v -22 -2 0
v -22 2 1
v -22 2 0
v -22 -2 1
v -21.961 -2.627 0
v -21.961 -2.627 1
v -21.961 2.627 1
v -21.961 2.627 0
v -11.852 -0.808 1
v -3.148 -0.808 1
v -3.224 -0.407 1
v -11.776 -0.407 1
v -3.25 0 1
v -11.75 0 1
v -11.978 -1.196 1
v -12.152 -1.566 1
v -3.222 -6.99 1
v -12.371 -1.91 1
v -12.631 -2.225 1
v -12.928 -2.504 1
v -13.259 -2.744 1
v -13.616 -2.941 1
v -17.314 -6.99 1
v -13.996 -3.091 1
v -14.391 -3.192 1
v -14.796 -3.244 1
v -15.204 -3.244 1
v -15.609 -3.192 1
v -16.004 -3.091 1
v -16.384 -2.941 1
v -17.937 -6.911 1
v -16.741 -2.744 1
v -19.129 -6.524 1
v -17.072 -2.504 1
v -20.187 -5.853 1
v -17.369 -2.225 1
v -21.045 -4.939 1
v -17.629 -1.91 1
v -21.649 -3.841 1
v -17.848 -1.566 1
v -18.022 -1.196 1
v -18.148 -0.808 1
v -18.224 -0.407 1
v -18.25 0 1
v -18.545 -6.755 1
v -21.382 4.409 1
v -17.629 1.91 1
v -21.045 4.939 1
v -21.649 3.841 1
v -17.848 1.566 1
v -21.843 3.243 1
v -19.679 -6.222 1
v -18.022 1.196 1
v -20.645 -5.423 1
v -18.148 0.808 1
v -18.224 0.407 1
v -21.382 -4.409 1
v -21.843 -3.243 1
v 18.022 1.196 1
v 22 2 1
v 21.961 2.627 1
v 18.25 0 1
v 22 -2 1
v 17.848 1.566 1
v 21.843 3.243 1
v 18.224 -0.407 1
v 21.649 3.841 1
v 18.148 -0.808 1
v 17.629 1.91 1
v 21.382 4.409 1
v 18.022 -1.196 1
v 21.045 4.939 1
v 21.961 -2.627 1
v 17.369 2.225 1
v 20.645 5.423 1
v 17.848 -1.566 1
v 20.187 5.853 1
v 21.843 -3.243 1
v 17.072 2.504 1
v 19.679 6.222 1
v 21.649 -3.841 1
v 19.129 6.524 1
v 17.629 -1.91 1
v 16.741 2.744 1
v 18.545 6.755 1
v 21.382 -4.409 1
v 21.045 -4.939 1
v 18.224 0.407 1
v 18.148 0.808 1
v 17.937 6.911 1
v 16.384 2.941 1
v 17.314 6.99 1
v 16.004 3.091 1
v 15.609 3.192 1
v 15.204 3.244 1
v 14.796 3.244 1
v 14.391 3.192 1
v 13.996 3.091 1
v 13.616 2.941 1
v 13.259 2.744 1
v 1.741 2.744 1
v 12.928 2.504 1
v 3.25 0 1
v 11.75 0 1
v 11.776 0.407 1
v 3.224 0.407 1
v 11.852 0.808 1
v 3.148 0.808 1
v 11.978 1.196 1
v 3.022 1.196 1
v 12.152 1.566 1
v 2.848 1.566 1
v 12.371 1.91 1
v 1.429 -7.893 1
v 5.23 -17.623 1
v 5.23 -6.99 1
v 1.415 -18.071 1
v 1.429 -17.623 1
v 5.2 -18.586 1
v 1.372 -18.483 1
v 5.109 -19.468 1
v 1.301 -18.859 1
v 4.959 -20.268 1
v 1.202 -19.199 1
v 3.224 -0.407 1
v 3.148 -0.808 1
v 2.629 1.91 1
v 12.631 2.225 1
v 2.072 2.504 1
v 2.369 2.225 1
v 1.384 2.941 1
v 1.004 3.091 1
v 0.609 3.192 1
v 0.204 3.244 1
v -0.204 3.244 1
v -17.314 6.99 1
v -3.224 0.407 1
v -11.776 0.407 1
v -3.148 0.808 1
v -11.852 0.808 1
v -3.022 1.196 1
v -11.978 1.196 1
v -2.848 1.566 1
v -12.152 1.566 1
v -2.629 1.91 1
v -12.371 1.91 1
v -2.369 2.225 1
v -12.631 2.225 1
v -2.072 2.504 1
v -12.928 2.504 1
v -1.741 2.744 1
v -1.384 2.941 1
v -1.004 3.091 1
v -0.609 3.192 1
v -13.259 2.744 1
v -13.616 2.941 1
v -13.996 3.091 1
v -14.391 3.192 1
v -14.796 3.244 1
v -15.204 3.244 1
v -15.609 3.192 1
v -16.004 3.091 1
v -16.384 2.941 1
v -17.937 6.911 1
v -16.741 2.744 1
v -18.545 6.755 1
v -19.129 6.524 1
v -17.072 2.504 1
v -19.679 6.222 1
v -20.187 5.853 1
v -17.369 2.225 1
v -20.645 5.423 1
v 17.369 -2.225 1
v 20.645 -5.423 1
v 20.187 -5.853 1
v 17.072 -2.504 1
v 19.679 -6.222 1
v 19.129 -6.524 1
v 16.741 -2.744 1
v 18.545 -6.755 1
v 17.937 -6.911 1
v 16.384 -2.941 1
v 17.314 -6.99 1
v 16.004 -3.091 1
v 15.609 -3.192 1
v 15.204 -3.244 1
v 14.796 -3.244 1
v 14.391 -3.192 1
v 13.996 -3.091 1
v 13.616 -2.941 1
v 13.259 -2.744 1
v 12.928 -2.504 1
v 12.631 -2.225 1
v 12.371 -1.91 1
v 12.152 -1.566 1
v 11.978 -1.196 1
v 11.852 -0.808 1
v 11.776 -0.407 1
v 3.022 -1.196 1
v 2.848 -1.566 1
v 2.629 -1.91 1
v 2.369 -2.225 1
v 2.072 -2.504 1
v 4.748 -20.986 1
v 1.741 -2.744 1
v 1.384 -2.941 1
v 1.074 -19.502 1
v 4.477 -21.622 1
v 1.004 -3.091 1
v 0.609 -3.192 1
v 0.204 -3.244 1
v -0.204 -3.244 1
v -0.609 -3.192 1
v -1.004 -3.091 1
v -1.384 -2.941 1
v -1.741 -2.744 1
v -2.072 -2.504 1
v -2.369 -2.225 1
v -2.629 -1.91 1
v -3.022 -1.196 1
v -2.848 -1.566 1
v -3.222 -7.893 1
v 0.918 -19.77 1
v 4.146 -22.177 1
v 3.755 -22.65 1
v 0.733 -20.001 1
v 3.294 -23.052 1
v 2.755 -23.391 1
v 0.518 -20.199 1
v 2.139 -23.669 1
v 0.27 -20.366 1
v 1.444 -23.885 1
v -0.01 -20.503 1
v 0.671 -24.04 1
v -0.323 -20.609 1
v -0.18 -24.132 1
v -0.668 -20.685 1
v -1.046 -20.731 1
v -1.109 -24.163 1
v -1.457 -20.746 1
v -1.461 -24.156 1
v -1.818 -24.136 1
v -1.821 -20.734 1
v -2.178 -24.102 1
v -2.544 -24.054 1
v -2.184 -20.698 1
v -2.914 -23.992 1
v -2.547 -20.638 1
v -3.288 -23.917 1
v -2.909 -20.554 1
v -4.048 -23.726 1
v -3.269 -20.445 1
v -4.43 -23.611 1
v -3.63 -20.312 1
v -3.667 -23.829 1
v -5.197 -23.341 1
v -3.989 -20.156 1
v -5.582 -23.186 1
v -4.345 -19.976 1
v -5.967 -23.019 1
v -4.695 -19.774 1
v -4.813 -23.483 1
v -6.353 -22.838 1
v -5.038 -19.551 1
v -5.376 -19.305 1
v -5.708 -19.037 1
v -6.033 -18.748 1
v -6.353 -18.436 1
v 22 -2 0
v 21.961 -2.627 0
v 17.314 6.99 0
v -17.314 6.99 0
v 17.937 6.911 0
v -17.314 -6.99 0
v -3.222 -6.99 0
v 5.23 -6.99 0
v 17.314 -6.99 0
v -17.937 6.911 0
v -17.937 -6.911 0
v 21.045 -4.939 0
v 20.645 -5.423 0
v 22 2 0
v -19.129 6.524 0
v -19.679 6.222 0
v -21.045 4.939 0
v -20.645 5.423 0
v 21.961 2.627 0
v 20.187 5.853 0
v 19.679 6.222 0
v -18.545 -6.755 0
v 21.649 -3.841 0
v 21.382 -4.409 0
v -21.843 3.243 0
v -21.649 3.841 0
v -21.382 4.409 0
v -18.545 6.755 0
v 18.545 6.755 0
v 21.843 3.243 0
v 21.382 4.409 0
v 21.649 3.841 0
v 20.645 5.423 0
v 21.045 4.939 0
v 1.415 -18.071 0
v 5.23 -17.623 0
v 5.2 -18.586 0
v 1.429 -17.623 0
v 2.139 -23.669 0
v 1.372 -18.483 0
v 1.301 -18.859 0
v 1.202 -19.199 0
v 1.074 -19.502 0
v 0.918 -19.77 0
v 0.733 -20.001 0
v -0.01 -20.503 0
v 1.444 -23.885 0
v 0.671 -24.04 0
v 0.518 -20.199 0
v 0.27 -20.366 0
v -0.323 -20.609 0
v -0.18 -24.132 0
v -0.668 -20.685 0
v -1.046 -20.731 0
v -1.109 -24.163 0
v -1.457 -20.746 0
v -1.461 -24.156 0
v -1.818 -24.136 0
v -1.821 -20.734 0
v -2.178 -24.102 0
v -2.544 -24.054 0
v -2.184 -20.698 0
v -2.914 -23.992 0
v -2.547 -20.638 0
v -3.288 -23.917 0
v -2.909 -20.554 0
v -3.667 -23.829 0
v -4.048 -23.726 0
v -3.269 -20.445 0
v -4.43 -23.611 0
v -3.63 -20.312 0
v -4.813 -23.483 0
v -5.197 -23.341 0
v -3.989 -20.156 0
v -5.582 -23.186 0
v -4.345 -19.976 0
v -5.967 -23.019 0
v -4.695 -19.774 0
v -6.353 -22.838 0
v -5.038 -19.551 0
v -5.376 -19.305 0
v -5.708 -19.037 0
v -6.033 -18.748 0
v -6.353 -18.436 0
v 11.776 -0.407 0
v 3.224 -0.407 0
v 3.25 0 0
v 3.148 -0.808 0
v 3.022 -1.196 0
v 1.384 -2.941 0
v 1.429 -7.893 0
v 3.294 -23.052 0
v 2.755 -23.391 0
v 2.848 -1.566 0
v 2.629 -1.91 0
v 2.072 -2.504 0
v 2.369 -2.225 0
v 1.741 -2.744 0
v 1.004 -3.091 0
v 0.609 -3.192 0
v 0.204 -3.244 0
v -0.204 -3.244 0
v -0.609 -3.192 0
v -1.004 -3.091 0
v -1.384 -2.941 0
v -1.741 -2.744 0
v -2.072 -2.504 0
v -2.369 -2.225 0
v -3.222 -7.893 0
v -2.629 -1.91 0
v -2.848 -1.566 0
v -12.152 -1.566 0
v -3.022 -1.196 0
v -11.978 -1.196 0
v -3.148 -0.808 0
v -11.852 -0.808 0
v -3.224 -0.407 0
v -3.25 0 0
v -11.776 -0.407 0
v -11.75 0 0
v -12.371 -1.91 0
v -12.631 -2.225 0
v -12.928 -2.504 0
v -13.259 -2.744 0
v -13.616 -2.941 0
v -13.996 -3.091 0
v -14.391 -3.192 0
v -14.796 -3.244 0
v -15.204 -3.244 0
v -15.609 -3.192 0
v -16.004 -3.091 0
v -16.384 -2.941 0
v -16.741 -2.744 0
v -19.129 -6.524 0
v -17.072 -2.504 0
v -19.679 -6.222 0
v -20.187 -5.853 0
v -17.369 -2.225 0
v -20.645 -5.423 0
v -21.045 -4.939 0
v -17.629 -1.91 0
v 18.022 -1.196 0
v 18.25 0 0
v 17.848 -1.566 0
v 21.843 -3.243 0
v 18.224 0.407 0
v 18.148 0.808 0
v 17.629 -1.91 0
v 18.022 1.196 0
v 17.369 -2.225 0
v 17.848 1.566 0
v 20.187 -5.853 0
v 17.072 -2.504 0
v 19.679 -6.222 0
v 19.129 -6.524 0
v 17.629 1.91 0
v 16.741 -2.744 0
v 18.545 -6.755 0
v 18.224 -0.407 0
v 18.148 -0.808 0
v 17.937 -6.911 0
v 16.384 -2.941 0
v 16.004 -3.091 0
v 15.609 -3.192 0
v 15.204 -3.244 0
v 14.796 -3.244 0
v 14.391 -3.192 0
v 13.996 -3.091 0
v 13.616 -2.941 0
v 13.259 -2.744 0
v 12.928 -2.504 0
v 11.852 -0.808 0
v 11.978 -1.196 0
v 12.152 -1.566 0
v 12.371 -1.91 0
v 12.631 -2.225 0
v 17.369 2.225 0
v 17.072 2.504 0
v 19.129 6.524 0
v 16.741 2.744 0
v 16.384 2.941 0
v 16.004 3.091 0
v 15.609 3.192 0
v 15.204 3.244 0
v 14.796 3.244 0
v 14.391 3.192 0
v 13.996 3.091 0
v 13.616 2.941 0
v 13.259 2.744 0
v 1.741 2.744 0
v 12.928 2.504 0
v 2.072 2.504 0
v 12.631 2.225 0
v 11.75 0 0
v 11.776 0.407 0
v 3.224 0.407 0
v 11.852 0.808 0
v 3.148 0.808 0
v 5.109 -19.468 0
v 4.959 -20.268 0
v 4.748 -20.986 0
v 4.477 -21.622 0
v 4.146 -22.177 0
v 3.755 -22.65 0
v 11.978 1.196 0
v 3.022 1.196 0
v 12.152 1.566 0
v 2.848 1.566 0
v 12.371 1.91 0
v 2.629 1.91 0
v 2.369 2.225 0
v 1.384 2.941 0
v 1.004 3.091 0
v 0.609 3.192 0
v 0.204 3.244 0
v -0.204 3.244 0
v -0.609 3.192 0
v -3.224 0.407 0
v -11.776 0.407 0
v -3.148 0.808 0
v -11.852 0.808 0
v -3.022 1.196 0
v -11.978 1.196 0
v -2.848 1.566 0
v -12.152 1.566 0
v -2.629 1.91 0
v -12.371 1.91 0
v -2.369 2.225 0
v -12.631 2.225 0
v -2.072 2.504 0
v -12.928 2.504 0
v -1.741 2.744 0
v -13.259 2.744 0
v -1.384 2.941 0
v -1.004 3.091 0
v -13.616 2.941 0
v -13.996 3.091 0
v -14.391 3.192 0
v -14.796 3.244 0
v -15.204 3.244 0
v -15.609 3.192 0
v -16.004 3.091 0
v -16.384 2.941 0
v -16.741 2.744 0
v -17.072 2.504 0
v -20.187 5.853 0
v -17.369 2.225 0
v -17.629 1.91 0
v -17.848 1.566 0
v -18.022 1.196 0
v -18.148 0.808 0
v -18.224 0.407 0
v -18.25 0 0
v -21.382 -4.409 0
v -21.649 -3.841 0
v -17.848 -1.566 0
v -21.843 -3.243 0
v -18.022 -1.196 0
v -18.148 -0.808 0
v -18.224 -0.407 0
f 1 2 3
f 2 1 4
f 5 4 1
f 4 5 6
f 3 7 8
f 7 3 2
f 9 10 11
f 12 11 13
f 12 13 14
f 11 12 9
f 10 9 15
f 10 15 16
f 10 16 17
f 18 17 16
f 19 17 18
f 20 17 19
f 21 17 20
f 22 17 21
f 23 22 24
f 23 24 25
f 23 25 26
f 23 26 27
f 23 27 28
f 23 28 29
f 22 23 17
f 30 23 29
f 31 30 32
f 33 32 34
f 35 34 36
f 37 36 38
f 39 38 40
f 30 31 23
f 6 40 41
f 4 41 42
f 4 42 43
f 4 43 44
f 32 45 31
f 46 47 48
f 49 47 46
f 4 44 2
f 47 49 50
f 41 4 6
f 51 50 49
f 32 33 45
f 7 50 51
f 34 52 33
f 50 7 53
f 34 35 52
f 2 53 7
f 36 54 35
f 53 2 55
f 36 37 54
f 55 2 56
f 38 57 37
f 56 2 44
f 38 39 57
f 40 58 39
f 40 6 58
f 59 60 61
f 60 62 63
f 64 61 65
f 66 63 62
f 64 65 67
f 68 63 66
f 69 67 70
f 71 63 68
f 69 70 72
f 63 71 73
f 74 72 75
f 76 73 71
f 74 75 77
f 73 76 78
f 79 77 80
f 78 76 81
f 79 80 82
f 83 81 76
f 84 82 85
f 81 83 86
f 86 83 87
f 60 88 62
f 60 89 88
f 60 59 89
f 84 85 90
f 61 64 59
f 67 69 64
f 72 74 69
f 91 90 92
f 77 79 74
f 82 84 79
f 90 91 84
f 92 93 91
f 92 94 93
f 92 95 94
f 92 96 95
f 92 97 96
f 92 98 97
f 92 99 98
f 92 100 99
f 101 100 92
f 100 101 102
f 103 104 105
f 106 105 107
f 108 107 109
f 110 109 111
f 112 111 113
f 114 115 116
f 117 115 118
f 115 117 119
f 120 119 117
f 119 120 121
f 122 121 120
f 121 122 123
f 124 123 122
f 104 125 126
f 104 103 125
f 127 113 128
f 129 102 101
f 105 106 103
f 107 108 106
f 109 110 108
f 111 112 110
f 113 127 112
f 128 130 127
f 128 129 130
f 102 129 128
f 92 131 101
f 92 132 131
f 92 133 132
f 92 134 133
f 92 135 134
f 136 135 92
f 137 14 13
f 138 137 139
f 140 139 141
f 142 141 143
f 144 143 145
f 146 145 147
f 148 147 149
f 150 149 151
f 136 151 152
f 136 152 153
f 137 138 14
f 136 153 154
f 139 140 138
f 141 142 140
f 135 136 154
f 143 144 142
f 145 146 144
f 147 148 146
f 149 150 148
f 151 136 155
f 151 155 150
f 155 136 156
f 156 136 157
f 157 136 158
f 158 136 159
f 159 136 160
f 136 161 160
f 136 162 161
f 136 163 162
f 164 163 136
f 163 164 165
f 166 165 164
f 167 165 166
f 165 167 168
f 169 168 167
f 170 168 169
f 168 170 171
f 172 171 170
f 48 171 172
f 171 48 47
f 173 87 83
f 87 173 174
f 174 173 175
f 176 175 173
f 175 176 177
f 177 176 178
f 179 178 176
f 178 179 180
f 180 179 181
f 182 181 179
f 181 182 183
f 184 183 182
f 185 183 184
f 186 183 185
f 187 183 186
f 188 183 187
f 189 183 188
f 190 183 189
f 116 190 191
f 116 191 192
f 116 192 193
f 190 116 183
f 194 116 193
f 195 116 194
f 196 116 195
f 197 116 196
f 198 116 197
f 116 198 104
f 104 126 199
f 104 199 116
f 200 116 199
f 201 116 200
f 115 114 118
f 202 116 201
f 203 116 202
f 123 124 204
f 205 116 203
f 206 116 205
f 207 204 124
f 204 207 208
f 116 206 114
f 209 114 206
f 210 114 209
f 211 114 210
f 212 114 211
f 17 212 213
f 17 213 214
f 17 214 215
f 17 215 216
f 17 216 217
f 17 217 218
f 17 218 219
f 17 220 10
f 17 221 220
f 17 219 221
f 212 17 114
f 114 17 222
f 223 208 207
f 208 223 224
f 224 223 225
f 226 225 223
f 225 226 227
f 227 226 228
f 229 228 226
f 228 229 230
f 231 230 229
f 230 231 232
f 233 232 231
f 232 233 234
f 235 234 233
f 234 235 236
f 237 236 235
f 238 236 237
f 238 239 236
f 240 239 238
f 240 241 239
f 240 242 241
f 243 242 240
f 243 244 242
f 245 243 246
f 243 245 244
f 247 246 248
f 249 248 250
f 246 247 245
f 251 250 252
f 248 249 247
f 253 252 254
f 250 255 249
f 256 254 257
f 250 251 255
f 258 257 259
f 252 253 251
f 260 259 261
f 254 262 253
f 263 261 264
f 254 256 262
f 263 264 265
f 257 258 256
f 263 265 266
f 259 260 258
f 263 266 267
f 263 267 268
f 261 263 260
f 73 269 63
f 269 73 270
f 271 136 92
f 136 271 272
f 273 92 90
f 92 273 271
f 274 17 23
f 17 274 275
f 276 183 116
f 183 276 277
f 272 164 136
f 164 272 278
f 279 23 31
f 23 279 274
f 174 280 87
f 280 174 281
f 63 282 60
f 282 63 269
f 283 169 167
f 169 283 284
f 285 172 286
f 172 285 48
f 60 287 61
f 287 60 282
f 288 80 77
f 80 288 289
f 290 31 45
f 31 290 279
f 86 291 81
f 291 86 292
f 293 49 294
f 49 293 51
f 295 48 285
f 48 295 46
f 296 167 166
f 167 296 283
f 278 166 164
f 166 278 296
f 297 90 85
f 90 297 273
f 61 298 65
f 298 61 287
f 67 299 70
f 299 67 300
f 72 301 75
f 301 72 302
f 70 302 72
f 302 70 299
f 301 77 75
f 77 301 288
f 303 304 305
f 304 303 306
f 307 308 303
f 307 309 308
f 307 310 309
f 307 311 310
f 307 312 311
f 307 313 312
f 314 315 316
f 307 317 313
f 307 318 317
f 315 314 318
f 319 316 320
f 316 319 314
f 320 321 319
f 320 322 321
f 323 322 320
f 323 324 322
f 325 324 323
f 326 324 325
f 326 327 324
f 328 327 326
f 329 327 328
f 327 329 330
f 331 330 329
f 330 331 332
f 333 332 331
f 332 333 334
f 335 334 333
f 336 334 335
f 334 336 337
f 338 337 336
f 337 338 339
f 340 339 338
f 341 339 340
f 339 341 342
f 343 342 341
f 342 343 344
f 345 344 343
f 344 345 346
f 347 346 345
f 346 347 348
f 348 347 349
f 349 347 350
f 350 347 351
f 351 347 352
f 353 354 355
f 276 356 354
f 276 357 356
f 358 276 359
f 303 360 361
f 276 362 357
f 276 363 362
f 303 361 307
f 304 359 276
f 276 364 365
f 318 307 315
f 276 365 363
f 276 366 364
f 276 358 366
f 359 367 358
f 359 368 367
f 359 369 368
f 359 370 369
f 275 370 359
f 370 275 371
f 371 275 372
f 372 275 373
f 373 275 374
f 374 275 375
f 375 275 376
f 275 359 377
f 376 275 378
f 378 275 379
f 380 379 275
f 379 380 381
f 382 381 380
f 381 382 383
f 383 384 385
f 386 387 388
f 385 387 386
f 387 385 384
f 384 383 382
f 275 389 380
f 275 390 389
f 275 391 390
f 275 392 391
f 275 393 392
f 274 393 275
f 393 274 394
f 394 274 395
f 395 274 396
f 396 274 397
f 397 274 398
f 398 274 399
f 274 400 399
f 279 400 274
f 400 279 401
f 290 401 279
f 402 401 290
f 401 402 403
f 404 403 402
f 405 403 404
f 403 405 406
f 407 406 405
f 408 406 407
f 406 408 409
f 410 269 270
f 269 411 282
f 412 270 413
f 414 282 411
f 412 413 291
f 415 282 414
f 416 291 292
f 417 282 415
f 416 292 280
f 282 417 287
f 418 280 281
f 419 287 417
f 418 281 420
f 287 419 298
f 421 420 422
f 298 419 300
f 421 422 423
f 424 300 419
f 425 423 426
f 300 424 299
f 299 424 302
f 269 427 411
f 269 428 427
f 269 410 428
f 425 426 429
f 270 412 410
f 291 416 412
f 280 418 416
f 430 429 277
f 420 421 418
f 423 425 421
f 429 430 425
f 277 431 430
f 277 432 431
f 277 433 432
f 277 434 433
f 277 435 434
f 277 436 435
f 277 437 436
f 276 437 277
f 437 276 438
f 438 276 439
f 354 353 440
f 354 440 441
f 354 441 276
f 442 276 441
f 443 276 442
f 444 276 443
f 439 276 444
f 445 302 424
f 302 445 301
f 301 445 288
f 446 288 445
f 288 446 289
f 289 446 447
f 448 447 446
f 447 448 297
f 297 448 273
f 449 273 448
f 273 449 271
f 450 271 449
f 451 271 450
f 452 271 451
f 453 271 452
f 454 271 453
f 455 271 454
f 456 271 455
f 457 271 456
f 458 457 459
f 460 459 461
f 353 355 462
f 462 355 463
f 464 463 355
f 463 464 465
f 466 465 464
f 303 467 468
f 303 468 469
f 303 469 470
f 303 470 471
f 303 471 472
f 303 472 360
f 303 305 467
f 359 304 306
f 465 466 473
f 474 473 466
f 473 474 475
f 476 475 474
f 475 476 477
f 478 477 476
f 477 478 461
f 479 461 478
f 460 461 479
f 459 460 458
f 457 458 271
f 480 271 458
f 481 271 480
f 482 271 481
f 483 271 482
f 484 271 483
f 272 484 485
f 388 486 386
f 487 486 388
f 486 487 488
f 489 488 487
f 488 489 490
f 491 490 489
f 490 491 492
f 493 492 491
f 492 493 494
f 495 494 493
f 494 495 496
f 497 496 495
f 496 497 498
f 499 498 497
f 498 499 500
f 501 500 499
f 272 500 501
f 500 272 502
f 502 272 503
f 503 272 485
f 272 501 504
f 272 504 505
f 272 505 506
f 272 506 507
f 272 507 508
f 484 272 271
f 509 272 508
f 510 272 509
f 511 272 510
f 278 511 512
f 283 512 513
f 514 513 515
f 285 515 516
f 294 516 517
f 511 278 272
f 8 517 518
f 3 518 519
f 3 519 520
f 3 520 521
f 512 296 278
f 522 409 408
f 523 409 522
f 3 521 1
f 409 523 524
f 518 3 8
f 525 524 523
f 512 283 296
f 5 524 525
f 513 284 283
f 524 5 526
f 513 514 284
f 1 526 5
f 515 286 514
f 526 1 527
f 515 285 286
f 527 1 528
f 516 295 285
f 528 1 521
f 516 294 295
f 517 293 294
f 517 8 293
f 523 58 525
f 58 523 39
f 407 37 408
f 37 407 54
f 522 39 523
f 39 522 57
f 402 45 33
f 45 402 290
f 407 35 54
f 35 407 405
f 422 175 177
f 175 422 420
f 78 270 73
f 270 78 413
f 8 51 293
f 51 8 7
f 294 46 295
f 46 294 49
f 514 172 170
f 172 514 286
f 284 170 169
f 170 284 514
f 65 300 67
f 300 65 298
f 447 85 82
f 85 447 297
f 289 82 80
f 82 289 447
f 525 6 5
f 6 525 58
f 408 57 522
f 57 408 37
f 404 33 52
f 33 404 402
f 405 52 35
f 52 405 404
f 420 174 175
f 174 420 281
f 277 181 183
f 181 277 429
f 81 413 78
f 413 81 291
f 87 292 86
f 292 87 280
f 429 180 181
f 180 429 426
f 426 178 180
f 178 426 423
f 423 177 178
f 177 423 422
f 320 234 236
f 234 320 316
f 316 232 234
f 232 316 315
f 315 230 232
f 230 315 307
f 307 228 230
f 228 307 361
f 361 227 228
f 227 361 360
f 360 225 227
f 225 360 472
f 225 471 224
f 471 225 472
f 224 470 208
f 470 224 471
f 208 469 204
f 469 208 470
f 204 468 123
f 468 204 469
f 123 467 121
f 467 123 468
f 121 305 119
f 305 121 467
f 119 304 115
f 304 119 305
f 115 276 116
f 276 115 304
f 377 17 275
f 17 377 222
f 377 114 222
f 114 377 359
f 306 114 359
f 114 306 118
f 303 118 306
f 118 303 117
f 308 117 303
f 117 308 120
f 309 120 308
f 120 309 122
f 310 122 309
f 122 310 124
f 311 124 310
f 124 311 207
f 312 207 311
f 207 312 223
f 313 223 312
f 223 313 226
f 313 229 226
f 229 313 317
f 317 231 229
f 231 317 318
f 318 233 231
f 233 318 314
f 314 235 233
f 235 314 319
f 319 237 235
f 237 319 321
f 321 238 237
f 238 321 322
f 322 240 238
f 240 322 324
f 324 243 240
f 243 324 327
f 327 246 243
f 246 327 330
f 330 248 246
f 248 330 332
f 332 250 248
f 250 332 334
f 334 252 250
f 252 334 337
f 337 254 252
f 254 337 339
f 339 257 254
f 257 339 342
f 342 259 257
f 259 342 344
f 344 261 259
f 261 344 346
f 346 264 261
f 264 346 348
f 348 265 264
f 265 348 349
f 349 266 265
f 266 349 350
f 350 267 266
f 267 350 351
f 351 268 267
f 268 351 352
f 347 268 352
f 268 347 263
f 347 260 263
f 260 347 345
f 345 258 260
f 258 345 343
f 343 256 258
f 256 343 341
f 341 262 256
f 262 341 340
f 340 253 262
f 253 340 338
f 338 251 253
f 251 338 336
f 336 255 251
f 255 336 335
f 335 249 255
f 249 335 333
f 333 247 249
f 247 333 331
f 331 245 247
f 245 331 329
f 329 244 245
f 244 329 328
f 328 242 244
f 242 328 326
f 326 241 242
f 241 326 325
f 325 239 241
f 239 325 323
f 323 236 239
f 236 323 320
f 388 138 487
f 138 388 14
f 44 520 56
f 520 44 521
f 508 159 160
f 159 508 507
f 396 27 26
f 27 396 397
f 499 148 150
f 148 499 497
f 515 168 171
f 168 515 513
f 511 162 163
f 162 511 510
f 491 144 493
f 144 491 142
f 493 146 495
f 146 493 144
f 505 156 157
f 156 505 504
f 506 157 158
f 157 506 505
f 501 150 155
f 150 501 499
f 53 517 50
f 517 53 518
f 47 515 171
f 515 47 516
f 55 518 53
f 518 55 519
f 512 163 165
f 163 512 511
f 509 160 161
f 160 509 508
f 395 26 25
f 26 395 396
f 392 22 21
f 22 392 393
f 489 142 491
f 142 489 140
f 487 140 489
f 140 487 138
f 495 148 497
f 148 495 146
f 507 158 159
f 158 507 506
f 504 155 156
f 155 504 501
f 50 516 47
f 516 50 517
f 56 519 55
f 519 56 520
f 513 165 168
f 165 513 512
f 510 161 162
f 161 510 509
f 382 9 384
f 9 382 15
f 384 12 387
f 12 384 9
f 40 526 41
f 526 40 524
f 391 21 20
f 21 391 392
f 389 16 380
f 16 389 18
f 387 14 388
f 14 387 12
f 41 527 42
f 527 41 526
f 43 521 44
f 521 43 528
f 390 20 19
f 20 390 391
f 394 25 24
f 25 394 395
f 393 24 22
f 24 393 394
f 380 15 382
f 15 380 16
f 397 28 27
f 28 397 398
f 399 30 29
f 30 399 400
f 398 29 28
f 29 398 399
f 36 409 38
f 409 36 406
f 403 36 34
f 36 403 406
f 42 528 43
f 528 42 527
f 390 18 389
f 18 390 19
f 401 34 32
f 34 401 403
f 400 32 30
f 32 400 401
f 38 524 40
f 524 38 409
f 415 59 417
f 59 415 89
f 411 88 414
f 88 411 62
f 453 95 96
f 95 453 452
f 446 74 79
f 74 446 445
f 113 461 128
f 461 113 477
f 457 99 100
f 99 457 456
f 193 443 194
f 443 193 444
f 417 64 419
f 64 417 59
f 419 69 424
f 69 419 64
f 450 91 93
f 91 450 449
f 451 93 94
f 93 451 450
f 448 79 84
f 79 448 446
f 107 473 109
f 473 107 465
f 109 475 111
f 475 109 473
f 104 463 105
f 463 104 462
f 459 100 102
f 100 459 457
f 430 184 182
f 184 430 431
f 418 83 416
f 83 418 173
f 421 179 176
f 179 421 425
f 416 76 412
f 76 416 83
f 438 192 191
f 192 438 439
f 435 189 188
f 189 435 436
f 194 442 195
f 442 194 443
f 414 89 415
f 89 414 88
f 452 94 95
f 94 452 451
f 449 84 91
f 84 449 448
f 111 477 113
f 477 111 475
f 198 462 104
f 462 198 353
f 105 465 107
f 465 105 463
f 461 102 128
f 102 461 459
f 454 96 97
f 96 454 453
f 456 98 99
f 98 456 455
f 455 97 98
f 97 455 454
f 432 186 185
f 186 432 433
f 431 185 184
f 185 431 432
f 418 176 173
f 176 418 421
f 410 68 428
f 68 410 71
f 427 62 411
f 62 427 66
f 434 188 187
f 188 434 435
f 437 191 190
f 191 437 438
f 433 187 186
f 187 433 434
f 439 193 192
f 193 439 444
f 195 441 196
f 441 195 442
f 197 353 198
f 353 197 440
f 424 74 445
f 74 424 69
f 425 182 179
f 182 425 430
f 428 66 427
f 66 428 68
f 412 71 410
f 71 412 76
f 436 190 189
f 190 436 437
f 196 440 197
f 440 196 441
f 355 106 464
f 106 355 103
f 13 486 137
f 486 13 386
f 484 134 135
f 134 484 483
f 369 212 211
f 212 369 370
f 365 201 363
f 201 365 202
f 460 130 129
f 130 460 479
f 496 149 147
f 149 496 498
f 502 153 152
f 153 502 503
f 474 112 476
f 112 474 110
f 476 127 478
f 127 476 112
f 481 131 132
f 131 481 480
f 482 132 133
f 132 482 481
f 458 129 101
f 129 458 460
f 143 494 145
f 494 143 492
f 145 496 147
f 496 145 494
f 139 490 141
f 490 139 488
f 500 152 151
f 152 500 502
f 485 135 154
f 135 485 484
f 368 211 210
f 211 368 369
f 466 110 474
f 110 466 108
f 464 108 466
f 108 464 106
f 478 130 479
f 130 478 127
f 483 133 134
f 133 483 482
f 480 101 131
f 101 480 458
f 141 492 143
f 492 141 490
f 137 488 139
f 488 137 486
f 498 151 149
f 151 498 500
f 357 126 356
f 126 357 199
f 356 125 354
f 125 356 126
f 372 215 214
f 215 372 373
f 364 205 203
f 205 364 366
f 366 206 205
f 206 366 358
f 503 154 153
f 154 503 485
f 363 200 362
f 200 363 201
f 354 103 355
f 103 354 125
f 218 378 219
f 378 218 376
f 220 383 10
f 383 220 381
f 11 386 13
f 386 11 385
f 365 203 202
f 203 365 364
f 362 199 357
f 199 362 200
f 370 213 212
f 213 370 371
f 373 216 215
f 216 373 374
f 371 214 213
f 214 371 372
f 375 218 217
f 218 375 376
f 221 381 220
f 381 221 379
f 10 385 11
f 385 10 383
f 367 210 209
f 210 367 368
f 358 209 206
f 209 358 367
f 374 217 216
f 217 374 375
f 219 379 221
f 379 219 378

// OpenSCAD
$fn = 50;


difference() {
	union() {
		translate(v = [0, 0, 0]) {
			rotate(a = [0, 0, 0]) {
				hull() {
					translate(v = [-17.0000000000, 2.0000000000, 0]) {
						rotate(a = [0, 0, 0]) {
							translate(v = [0, 0, 0]) {
								rotate(a = [0, 0, 0]) {
									cylinder(h = 1, r = 5);
								}
							}
						}
					}
					translate(v = [17.0000000000, 2.0000000000, 0]) {
						rotate(a = [0, 0, 0]) {
							translate(v = [0, 0, 0]) {
								rotate(a = [0, 0, 0]) {
									cylinder(h = 1, r = 5);
								}
							}
						}
					}
					translate(v = [-17.0000000000, -2.0000000000, 0]) {
						rotate(a = [0, 0, 0]) {
							translate(v = [0, 0, 0]) {
								rotate(a = [0, 0, 0]) {
									cylinder(h = 1, r = 5);
								}
							}
						}
					}
					translate(v = [17.0000000000, -2.0000000000, 0]) {
						rotate(a = [0, 0, 0]) {
							translate(v = [0, 0, 0]) {
								rotate(a = [0, 0, 0]) {
									cylinder(h = 1, r = 5);
								}
							}
						}
					}
				}
			}
		}
		translate(v = [0, -5, 0]) {
			rotate(a = [0, 0, 0]) {
				linear_extrude(height = 1) {
					text(font = "DejaVu Sans Mono:style=Bold", halign = "center", size = 19.0000000000, text = "J", valign = "top");
				}
			}
		}
	}
	union() {
		translate(v = [-15.0000000000, 0.0000000000, -125.0000000000]) {
			rotate(a = [0, 0, 0]) {
				cylinder(h = 250, r = 3.2500000000);
			}
		}
		translate(v = [15.0000000000, 0.0000000000, -125.0000000000]) {
			rotate(a = [0, 0, 0]) {
				cylinder(h = 250, r = 3.2500000000);
			}
		}
		translate(v = [15.0000000000, 0.0000000000, -125.0000000000]) {
			rotate(a = [0, 0, 0]) {
				cylinder(h = 250, r = 3.2500000000);
			}
		}
		translate(v = [0, 0, -125.0000000000]) {
			rotate(a = [0, 0, 0]) {
				cylinder(h = 250, r = 3.2500000000);
			}
		}
	}
}
